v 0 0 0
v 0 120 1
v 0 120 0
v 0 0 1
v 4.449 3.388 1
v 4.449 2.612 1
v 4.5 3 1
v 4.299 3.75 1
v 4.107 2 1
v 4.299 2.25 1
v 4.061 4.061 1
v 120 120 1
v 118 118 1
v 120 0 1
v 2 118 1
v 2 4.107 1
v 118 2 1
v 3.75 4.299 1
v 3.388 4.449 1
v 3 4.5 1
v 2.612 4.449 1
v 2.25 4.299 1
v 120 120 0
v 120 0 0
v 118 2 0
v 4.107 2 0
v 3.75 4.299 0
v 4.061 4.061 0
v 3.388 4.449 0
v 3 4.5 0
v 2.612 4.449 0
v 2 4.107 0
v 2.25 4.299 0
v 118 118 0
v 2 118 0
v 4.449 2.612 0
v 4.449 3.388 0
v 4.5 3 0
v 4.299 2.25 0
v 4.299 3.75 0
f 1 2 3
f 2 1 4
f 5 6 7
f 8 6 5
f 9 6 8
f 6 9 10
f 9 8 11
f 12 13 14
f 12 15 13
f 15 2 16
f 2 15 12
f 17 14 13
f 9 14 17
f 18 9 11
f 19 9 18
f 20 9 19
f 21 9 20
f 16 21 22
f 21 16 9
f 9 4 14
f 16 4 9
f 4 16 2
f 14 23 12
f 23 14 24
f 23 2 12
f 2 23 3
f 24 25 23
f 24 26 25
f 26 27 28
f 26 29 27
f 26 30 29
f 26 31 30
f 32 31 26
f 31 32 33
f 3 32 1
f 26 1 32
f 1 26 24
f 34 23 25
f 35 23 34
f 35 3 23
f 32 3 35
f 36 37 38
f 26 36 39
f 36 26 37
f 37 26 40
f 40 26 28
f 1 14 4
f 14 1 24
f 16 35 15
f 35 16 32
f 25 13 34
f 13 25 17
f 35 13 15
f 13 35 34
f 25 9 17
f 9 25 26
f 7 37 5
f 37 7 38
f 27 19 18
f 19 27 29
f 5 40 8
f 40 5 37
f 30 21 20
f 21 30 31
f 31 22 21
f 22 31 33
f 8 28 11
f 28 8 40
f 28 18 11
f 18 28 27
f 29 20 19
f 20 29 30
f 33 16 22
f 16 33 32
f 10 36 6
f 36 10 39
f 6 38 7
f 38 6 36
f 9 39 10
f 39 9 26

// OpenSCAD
$fn=24;
difference() {
  cube([120,120,1]);
  translate([2,2,-1]) cube([116,116,4]);
}
translate([3,3,0]) cylinder(r=1.5,h=1);
